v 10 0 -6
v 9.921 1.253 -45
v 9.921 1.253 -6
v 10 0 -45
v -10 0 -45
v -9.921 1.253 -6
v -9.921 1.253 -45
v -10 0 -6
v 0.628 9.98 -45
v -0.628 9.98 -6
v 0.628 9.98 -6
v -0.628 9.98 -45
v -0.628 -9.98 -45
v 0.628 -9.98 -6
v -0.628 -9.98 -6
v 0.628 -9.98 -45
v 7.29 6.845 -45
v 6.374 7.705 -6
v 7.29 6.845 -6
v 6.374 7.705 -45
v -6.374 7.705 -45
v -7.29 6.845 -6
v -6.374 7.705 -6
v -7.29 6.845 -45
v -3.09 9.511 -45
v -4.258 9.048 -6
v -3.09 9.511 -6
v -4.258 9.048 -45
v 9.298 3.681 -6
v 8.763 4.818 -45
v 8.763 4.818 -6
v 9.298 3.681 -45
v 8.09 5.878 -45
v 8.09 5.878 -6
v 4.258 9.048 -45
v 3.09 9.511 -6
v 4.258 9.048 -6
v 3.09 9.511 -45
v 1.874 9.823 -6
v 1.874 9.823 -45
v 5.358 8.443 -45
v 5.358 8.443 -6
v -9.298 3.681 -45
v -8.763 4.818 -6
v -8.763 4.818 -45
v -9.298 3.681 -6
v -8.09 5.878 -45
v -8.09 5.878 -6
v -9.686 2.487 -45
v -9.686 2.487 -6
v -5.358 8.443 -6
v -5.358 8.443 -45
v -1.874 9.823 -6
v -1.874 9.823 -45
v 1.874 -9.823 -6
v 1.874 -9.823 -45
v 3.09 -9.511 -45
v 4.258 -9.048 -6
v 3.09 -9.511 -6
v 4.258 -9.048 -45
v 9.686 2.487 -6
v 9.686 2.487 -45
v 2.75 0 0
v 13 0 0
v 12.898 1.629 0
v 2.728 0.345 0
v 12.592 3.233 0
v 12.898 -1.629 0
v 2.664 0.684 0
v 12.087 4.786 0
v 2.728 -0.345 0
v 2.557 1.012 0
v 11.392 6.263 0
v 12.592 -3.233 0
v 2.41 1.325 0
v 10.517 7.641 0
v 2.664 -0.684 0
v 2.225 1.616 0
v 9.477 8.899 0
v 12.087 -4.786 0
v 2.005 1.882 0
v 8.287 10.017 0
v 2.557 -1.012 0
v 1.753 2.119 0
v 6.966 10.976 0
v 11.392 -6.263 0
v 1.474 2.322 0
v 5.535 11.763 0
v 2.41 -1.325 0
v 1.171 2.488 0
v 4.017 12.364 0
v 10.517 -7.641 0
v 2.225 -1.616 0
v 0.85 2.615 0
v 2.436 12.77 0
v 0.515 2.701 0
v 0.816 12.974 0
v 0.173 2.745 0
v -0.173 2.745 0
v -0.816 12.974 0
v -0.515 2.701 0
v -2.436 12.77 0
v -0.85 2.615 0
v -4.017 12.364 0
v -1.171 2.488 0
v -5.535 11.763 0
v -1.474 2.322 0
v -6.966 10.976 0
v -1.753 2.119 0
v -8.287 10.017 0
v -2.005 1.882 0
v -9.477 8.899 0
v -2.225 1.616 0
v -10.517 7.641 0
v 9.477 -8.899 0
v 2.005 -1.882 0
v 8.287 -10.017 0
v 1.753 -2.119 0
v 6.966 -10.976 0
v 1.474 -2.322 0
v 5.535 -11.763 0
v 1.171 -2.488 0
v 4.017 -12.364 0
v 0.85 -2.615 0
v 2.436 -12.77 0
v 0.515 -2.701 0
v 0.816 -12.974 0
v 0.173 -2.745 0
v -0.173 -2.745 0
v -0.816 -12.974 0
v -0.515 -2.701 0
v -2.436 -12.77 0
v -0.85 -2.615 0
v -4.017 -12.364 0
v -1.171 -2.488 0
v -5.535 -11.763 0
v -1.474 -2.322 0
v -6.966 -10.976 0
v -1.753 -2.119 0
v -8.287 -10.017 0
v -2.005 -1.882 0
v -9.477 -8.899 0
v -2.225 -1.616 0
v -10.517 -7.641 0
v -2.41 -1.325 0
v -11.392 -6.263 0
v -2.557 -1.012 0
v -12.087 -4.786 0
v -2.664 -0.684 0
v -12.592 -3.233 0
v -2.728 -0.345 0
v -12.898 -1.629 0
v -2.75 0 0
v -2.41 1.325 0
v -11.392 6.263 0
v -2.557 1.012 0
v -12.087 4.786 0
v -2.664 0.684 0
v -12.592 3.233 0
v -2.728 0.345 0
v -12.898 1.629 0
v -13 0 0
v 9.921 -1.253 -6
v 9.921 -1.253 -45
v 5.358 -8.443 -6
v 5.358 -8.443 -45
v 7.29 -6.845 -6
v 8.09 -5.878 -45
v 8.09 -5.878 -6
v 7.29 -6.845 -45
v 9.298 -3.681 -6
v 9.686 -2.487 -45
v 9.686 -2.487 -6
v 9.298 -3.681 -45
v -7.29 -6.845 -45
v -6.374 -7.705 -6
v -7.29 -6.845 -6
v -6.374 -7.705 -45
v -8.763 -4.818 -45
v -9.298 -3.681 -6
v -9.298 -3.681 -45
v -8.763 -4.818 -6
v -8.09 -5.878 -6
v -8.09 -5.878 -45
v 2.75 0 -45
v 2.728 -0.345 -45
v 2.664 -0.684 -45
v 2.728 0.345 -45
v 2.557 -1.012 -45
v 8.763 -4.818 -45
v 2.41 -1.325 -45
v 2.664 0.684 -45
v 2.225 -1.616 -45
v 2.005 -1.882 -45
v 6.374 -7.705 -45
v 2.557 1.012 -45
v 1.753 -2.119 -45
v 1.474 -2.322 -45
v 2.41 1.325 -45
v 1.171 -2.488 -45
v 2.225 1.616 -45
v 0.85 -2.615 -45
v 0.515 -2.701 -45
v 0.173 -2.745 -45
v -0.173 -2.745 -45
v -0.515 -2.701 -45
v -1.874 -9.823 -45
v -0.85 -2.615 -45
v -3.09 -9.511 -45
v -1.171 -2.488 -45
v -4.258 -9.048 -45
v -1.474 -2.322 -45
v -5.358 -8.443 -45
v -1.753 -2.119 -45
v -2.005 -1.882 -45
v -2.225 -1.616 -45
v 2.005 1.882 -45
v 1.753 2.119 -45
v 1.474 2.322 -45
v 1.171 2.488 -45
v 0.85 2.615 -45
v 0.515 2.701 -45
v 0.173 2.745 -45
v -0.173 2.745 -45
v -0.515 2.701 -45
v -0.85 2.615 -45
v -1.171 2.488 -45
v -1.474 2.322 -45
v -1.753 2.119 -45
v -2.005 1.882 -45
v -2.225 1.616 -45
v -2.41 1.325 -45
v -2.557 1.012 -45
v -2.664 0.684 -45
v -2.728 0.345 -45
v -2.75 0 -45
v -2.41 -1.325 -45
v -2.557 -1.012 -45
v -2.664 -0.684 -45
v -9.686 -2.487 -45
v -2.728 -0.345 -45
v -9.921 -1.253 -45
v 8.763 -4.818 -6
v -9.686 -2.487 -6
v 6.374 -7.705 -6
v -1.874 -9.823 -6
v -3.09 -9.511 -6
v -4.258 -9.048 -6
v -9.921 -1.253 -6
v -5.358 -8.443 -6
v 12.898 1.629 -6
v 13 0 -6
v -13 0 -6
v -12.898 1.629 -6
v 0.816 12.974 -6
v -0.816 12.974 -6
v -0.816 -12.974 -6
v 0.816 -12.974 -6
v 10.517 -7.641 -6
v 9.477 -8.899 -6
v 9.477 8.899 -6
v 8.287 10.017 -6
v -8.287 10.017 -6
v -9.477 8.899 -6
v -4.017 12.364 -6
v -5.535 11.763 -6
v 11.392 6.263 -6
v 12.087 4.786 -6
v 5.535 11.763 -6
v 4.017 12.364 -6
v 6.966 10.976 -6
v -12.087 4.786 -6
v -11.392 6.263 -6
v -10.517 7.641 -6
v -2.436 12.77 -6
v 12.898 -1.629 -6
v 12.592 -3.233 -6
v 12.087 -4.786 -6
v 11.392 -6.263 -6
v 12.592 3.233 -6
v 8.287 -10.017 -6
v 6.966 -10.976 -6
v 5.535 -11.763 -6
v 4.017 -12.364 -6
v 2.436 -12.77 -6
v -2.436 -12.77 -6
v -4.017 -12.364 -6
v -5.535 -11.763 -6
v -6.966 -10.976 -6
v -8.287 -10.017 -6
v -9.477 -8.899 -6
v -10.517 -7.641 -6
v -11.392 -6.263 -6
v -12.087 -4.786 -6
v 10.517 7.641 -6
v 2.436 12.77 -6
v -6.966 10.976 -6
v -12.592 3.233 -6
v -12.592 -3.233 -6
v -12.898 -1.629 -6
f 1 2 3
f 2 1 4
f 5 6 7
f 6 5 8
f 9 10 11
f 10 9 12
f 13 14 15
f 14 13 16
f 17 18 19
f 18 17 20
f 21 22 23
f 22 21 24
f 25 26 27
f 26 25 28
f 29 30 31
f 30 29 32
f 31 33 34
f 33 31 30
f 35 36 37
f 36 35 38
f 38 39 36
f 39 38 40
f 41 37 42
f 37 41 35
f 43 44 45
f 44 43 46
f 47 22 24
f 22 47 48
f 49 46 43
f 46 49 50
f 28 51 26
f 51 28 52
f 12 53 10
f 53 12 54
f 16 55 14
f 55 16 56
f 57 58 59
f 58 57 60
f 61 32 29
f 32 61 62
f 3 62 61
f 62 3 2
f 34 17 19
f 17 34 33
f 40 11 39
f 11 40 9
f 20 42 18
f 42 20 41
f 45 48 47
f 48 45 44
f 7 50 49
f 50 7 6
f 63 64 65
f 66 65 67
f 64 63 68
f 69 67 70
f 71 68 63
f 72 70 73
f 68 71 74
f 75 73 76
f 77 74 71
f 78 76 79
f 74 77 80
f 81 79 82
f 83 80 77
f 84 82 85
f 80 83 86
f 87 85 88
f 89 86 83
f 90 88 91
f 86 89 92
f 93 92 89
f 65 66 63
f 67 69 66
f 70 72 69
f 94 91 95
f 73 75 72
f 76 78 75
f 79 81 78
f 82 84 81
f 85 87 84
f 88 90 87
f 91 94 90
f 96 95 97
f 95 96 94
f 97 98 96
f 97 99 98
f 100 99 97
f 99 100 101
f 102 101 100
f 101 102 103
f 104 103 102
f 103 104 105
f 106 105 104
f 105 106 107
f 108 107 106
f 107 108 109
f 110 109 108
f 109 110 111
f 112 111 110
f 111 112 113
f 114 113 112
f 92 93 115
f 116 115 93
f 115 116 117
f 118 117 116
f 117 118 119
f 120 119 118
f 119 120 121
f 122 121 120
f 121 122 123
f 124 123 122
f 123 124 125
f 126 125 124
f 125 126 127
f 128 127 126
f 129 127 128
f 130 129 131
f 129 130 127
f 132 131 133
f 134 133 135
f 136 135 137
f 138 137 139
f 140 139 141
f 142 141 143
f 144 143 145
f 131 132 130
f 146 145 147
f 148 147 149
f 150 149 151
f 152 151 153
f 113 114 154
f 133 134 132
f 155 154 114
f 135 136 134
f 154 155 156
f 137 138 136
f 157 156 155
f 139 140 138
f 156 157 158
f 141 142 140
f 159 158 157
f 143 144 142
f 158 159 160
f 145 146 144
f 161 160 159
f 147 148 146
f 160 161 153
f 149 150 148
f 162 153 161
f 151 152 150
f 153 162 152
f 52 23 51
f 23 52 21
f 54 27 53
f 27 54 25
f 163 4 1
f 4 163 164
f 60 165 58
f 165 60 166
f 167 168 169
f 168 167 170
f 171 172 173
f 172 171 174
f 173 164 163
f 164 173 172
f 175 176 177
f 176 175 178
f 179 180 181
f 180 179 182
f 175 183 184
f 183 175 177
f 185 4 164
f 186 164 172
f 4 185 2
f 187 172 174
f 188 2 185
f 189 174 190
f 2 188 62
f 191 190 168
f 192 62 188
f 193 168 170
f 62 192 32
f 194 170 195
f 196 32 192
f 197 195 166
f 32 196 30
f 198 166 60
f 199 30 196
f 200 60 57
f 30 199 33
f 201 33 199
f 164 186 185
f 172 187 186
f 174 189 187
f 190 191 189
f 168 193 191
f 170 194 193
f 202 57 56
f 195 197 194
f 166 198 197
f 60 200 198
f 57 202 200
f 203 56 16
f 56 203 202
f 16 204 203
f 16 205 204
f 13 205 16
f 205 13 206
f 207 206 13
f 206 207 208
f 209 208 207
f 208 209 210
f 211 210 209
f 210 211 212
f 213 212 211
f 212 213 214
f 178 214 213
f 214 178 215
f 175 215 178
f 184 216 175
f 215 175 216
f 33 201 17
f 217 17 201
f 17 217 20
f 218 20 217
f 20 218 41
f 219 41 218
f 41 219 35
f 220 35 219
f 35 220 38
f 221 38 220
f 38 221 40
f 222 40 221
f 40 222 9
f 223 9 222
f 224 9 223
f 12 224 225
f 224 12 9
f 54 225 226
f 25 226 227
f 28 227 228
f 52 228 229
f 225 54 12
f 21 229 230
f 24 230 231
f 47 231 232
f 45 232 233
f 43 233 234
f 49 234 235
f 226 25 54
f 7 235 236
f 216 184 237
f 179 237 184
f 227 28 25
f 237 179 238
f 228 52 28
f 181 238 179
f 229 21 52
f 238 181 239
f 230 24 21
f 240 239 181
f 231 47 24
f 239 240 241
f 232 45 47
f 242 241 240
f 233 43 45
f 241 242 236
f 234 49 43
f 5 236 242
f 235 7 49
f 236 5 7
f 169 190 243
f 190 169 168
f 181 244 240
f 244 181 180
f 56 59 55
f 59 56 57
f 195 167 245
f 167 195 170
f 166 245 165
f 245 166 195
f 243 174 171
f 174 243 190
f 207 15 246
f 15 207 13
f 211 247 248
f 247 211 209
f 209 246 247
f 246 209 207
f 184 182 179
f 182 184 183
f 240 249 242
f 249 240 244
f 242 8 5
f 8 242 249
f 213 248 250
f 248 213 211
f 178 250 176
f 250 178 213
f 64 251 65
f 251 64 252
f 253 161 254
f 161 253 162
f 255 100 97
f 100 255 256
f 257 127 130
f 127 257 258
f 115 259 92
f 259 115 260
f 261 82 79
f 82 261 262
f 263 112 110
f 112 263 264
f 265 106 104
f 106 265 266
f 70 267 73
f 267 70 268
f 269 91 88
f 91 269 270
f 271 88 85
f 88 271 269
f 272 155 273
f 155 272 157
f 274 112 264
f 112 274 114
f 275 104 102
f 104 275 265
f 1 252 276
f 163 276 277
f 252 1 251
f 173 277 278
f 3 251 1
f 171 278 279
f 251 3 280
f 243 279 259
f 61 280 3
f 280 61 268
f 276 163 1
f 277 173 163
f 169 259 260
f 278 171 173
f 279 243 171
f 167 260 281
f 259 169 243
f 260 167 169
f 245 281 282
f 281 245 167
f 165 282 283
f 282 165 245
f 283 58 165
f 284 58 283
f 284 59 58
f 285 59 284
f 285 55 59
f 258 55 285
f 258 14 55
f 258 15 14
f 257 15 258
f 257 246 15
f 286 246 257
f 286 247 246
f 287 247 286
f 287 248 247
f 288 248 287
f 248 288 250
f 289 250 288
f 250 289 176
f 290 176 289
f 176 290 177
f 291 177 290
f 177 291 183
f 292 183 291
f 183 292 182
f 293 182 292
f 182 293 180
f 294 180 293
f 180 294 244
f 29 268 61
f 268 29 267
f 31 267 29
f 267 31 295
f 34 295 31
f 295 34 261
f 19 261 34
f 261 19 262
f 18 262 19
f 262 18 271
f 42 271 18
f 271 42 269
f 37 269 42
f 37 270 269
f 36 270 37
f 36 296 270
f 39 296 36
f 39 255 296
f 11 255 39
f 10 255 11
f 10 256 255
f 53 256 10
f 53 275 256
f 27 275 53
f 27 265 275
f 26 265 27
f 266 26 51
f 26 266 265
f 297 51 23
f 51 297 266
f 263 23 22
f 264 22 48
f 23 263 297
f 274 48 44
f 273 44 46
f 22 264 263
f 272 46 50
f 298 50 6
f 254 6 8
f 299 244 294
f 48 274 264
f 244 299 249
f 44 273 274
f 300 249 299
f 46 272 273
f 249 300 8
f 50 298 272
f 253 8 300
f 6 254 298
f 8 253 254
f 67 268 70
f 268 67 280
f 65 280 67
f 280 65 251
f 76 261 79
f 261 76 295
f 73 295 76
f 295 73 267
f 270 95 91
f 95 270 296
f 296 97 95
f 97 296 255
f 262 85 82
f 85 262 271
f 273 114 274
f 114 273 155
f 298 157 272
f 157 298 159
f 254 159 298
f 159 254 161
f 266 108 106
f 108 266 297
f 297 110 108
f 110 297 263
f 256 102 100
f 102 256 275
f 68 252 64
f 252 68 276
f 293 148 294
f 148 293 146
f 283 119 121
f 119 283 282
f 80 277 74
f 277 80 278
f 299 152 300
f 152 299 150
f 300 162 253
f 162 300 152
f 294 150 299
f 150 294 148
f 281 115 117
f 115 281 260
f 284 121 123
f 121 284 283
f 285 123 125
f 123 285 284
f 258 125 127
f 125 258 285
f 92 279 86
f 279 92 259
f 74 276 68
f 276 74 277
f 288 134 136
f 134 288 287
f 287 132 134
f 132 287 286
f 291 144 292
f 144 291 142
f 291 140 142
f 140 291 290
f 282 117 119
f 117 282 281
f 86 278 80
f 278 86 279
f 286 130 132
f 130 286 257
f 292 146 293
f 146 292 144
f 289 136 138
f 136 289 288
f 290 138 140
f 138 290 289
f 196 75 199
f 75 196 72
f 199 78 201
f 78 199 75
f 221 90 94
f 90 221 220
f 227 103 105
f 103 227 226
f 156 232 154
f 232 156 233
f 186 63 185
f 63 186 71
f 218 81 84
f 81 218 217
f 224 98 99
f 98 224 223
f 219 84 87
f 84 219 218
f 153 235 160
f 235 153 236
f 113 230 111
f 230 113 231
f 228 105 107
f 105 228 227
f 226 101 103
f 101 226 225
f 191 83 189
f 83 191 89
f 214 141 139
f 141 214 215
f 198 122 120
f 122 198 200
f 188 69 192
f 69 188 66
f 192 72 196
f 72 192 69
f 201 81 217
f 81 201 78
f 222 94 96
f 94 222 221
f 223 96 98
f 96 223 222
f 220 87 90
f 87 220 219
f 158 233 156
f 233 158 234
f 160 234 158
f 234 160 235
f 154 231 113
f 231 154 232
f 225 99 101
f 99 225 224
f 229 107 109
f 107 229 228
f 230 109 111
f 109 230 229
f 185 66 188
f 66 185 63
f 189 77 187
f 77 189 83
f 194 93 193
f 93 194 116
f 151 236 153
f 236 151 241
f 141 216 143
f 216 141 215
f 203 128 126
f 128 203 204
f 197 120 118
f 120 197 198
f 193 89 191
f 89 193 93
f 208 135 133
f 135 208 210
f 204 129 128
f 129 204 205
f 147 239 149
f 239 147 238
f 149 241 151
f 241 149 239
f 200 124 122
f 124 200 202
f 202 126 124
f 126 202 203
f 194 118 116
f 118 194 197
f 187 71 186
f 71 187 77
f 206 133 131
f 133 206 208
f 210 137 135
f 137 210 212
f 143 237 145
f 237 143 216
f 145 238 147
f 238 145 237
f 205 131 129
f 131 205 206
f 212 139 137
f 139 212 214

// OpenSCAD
$fn = 50;


difference() {
	union() {
		translate(v = [0, 0, -45.0000000000]) {
			cylinder(h = 45, r = 10.0000000000);
		}
		translate(v = [0, 0, -6.0000000000]) {
			cylinder(h = 6, r = 13.0000000000);
		}
	}
	union() {
		#translate(v = [0, 0, -45]) {
			cylinder(h = 45, r = 2.7500000000);
		}
	}
}
